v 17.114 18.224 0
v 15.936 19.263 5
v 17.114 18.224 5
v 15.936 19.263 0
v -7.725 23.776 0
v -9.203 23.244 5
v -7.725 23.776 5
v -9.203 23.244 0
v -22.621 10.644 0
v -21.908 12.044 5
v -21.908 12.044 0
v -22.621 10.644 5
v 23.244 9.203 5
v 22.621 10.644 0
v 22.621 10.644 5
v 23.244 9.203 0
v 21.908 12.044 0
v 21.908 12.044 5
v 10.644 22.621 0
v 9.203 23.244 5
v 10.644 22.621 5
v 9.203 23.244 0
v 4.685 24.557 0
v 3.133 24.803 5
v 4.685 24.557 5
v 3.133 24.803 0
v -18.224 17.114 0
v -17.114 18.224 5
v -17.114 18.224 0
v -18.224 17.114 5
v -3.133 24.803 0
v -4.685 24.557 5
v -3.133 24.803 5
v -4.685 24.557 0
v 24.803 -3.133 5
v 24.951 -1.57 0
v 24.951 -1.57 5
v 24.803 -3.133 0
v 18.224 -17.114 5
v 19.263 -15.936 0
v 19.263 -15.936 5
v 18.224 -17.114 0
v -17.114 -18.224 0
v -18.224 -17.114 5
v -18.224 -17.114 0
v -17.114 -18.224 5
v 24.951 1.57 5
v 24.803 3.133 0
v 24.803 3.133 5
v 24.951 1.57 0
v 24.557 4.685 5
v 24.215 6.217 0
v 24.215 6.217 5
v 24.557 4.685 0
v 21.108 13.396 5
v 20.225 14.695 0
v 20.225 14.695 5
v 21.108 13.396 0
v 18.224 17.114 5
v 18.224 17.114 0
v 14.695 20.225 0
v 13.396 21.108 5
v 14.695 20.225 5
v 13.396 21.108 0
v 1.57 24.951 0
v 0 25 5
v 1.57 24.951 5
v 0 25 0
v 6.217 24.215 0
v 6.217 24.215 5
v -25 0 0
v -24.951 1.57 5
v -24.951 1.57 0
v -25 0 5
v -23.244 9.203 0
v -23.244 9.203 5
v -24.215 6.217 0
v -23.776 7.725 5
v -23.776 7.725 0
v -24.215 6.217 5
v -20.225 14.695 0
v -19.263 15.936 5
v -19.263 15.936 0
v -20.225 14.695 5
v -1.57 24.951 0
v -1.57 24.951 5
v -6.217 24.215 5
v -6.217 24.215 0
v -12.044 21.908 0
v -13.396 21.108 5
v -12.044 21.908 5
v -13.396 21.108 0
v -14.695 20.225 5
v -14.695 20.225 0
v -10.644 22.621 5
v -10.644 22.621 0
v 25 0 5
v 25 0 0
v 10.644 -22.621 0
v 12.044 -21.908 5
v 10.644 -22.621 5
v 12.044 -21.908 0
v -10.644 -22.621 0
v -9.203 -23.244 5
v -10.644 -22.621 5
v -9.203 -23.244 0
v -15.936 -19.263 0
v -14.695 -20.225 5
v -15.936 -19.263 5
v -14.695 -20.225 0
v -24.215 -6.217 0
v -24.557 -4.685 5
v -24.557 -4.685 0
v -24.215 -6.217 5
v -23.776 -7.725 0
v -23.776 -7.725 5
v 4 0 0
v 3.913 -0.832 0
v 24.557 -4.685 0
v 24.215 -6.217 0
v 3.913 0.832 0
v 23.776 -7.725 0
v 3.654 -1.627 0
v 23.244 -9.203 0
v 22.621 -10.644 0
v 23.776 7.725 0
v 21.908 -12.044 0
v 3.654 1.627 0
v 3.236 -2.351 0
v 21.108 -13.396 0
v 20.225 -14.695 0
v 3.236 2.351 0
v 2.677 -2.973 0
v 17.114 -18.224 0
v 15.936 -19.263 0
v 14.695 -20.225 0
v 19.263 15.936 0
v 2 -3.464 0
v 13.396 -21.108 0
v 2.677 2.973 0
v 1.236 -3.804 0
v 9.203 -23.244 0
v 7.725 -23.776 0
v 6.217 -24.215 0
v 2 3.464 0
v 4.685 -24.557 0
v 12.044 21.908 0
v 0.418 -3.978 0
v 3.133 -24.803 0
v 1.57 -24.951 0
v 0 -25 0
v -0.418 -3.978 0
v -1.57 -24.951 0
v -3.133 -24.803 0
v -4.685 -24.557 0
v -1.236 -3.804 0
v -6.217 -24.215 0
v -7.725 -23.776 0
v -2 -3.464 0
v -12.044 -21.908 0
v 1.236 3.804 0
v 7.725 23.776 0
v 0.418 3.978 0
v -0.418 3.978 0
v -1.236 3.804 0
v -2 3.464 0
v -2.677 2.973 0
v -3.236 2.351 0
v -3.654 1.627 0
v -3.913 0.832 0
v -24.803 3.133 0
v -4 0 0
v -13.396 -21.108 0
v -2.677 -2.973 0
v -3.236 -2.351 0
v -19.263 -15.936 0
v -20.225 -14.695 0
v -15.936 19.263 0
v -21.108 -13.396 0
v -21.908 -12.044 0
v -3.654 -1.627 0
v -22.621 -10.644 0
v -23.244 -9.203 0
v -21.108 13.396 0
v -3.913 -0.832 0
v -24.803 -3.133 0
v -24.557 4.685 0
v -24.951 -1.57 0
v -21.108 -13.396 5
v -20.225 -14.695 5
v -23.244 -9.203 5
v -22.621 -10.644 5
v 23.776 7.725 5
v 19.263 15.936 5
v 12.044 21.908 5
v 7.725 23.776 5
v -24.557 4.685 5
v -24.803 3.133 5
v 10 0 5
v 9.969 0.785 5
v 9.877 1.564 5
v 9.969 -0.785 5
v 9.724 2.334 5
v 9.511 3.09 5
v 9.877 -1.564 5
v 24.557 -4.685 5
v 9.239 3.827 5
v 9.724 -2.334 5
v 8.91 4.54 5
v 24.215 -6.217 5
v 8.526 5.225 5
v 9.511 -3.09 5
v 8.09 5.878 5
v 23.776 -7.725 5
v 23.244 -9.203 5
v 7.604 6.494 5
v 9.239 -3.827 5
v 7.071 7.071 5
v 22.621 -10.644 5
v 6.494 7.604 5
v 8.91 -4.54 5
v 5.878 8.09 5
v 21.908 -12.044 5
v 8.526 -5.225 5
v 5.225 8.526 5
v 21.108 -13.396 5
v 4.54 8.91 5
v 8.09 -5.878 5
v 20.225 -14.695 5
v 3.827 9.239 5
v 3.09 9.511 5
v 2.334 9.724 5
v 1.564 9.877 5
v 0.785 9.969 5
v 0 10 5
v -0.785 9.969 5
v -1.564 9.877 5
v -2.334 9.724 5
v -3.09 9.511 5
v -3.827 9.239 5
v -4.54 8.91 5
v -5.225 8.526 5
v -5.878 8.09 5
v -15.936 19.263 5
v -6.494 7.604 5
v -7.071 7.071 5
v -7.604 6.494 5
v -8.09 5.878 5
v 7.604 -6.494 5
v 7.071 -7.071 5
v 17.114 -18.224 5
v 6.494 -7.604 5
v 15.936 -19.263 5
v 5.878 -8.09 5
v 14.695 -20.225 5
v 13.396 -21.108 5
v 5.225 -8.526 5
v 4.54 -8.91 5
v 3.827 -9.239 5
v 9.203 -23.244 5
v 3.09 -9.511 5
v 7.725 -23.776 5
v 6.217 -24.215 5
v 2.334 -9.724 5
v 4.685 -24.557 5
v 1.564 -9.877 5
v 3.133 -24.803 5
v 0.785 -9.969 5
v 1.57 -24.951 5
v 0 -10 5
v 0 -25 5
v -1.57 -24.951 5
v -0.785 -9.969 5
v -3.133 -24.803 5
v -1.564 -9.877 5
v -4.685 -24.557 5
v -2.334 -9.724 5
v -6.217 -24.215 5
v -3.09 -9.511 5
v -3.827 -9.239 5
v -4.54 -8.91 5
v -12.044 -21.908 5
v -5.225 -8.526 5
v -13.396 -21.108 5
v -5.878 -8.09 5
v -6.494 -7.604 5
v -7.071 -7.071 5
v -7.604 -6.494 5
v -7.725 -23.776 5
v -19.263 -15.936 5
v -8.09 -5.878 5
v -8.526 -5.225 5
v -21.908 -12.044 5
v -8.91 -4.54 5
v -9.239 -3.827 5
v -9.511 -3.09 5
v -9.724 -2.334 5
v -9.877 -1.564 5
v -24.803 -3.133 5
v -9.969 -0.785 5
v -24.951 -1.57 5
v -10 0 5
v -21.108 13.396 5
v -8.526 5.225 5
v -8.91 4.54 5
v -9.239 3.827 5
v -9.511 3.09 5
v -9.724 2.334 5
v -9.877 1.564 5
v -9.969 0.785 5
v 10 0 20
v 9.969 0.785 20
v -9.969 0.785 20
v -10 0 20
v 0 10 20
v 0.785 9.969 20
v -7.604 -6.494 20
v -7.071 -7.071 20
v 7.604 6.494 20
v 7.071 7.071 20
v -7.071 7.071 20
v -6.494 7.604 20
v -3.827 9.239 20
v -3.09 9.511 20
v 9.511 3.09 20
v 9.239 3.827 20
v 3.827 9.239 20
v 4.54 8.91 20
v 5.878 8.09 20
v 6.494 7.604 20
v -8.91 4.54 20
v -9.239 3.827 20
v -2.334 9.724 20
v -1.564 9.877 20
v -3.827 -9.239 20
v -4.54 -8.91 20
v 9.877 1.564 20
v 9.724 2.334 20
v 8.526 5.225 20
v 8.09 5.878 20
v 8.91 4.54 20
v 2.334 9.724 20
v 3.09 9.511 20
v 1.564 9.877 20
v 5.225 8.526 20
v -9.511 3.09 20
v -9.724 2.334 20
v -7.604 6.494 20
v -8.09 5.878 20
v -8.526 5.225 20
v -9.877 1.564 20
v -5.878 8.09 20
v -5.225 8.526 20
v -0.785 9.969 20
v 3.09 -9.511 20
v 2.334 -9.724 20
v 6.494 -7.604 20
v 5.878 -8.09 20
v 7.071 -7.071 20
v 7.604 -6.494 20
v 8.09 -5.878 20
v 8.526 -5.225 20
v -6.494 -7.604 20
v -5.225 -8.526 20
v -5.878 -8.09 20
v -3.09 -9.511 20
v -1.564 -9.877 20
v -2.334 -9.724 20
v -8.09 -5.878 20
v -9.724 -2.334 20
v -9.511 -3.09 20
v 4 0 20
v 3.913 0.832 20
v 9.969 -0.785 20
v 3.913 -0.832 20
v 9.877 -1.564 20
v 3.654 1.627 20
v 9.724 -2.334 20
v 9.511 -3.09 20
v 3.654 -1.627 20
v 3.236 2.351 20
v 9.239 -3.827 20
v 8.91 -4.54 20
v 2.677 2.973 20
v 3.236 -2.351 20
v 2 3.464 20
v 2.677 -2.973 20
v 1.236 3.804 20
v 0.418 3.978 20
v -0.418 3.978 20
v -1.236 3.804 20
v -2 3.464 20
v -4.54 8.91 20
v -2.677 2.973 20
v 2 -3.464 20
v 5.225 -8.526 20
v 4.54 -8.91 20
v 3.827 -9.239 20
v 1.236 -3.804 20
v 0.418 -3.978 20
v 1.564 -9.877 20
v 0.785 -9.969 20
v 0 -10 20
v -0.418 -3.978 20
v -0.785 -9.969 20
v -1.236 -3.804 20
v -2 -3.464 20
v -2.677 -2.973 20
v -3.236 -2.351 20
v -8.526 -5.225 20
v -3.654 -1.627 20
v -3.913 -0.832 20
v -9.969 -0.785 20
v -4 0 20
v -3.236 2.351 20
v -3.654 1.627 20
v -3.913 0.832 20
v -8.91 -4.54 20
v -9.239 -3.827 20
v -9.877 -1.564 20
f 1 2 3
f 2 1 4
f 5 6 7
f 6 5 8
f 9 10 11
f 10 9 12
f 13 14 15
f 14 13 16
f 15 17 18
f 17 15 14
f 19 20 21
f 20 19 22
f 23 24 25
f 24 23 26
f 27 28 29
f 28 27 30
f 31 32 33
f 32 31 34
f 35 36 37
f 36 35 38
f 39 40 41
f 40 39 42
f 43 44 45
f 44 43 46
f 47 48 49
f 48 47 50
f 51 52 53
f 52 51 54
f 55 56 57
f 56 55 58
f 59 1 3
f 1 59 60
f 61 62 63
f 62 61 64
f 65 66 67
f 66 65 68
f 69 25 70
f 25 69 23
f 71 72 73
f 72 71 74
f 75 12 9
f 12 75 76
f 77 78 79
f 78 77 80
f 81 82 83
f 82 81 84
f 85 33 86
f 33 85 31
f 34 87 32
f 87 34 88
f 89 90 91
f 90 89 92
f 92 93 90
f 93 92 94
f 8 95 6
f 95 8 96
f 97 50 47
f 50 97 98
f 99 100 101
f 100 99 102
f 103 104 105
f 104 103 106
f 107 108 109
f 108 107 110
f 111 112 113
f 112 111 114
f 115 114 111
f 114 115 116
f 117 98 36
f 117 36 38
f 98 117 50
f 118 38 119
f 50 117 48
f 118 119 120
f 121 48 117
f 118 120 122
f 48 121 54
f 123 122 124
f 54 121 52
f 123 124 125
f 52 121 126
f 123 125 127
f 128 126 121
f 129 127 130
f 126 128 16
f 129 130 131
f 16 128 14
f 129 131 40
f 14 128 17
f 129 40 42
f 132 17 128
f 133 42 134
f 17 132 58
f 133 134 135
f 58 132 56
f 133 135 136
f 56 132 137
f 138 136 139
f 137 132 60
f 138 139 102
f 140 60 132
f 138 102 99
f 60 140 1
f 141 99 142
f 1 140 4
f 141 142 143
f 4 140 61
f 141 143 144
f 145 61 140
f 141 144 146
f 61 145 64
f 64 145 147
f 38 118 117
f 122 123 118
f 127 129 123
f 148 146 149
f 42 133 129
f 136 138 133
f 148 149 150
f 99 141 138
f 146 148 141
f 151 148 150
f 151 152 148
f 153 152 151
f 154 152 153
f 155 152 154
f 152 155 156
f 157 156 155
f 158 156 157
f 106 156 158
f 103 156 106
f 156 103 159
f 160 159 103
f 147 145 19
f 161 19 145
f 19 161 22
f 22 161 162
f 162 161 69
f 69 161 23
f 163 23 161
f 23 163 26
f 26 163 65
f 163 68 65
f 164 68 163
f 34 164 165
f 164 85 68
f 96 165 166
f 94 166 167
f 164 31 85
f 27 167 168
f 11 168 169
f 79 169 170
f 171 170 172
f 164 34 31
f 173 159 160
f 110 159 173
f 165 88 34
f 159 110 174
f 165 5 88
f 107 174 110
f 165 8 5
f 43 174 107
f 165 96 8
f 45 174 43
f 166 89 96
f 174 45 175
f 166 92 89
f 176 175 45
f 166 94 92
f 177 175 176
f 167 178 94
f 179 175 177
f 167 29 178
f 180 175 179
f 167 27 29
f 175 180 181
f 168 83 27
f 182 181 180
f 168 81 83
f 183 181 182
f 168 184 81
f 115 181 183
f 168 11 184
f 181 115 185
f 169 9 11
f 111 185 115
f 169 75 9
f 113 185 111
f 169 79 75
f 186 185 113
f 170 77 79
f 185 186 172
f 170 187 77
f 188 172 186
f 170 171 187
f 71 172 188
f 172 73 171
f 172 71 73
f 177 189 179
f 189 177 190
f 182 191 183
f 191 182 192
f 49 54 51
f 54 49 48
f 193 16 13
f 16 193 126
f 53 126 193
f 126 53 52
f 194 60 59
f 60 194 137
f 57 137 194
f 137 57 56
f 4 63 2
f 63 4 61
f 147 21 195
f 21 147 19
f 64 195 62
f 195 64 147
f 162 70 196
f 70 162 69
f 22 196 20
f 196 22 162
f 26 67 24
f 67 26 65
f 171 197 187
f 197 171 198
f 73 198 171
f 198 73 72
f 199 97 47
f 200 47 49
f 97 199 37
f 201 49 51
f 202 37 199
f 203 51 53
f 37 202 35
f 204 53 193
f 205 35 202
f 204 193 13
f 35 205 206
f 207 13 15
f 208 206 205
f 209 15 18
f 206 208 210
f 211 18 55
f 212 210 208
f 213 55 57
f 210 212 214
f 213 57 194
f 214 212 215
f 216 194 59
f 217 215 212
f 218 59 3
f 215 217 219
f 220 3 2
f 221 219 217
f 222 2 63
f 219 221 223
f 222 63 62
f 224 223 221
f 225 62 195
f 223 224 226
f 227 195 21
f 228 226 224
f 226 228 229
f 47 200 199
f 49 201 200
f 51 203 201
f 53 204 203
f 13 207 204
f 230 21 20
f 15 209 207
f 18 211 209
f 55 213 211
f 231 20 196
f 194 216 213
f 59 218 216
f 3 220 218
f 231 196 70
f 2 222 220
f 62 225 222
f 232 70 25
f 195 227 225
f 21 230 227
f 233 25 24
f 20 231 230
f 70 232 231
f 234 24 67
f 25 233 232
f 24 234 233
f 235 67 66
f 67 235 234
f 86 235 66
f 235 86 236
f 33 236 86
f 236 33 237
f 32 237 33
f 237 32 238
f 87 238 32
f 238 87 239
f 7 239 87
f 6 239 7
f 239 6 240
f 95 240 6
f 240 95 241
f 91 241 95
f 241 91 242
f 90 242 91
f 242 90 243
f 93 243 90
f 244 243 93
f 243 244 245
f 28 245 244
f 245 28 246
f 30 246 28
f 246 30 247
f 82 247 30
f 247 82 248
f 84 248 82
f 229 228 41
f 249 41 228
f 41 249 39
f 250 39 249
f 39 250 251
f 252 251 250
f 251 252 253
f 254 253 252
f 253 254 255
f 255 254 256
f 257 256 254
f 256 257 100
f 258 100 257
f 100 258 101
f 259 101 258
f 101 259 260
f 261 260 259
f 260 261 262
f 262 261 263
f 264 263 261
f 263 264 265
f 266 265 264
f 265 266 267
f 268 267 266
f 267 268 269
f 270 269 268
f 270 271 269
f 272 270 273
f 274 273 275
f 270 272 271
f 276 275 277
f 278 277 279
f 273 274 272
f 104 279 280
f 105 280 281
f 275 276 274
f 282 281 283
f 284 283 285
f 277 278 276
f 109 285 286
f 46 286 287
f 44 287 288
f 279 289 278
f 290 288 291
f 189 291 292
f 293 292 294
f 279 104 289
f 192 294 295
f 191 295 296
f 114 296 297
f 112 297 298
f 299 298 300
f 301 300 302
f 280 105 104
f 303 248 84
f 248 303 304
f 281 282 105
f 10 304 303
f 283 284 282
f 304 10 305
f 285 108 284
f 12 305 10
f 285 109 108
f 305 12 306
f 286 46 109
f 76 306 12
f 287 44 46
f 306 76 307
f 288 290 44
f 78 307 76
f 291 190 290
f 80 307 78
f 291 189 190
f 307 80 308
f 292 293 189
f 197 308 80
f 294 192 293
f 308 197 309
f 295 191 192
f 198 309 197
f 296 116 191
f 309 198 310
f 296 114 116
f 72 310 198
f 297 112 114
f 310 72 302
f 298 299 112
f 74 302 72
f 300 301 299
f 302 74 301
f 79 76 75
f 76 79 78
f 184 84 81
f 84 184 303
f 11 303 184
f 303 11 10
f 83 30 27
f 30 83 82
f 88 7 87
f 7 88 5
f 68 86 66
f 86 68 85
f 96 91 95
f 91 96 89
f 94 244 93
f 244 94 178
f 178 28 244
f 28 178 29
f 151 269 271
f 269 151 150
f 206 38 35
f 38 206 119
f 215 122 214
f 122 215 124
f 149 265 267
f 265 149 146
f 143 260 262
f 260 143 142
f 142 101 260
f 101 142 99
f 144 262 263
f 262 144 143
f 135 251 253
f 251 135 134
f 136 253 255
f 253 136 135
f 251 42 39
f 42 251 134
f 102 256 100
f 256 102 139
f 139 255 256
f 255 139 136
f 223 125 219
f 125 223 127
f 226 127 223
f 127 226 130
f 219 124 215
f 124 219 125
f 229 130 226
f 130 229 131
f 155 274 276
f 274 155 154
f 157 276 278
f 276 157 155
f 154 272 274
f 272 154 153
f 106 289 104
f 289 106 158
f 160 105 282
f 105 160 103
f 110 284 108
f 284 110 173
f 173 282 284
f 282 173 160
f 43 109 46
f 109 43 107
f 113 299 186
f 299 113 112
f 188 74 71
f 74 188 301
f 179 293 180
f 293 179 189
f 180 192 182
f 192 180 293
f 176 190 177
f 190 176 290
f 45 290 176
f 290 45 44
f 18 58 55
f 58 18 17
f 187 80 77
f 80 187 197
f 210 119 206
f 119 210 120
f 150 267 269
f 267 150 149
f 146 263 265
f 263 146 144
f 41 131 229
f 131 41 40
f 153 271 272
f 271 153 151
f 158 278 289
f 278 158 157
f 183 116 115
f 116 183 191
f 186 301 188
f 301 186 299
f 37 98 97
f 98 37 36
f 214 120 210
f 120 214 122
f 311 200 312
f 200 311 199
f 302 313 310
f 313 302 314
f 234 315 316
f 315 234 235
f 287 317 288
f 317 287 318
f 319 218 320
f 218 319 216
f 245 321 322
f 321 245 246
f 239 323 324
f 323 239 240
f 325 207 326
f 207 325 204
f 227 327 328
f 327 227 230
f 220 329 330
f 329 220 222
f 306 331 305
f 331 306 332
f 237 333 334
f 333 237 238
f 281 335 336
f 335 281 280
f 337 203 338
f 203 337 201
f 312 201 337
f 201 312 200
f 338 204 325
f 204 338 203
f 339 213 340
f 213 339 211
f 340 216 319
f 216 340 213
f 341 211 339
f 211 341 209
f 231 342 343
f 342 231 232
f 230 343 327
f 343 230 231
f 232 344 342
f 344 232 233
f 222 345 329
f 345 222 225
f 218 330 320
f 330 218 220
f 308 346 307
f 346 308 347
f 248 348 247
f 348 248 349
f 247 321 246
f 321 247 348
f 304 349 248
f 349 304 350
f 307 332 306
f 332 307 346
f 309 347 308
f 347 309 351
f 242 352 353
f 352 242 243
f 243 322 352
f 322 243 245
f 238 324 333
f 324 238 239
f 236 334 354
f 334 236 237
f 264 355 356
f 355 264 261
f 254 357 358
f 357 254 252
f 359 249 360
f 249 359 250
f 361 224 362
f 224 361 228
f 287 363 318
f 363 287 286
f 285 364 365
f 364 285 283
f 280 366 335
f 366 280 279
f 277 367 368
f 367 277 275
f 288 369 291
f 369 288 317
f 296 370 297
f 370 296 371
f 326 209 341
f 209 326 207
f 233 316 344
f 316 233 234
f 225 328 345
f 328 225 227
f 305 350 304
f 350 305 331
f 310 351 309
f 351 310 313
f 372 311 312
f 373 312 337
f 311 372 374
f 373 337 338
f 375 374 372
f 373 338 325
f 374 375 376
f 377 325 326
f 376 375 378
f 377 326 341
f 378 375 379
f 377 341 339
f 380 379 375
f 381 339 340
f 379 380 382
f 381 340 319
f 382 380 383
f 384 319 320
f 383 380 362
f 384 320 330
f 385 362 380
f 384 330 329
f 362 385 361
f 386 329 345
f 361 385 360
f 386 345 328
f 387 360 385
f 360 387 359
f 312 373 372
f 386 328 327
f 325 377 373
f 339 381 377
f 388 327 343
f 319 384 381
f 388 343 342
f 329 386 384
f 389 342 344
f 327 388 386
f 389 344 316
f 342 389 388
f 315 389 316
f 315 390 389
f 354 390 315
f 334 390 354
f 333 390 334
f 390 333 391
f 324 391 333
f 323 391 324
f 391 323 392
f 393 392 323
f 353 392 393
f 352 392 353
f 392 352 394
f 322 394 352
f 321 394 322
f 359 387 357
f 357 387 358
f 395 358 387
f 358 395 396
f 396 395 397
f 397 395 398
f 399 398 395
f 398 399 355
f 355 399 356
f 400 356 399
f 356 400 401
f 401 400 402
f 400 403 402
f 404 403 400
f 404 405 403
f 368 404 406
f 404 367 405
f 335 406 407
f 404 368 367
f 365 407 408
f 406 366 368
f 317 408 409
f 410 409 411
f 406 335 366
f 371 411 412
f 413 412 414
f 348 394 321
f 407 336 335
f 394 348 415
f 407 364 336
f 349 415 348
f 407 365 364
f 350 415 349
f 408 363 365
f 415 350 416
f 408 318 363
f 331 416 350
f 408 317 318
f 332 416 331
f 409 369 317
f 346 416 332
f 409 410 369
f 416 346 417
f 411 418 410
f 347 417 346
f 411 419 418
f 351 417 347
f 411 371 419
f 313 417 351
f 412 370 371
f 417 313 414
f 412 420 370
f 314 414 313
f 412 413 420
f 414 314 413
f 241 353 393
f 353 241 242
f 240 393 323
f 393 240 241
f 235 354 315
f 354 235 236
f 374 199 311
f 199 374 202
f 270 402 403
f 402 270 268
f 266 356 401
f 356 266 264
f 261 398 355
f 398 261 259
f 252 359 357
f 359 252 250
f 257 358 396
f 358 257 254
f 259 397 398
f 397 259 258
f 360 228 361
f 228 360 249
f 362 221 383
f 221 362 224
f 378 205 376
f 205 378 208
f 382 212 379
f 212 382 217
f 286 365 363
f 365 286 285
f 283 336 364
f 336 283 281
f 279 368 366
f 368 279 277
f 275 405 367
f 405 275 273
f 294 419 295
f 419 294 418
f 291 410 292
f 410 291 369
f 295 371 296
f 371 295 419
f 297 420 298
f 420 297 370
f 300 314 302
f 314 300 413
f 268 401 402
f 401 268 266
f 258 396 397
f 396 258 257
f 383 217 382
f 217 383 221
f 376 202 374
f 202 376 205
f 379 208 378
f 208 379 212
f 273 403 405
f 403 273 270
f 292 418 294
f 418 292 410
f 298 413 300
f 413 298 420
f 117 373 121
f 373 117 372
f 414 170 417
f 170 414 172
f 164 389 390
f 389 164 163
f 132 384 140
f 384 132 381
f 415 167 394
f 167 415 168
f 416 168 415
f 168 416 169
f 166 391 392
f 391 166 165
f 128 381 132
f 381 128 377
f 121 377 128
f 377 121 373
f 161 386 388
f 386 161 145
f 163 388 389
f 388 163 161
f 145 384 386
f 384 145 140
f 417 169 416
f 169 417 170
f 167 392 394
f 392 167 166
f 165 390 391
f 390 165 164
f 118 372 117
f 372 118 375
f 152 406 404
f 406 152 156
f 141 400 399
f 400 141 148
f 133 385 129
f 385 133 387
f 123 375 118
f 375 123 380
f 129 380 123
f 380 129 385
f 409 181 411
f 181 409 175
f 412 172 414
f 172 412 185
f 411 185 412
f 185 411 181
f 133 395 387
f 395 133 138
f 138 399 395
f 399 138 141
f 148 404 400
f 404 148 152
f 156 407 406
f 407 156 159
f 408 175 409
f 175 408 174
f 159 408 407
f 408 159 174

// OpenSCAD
//--Rueda con portaejes y taladro para eje

difference(){
  
  //--Rueda
  union(){
    //--Base de la rueda
    cylinder(r=50/2,h=5, $fn=100);
    //--Portaejes
    cylinder(r=20/2,h=20, $fn=80);
  }
  
  //--Taladro
  cylinder(r=8/2,h=80, $fn=30,center=true);
}
